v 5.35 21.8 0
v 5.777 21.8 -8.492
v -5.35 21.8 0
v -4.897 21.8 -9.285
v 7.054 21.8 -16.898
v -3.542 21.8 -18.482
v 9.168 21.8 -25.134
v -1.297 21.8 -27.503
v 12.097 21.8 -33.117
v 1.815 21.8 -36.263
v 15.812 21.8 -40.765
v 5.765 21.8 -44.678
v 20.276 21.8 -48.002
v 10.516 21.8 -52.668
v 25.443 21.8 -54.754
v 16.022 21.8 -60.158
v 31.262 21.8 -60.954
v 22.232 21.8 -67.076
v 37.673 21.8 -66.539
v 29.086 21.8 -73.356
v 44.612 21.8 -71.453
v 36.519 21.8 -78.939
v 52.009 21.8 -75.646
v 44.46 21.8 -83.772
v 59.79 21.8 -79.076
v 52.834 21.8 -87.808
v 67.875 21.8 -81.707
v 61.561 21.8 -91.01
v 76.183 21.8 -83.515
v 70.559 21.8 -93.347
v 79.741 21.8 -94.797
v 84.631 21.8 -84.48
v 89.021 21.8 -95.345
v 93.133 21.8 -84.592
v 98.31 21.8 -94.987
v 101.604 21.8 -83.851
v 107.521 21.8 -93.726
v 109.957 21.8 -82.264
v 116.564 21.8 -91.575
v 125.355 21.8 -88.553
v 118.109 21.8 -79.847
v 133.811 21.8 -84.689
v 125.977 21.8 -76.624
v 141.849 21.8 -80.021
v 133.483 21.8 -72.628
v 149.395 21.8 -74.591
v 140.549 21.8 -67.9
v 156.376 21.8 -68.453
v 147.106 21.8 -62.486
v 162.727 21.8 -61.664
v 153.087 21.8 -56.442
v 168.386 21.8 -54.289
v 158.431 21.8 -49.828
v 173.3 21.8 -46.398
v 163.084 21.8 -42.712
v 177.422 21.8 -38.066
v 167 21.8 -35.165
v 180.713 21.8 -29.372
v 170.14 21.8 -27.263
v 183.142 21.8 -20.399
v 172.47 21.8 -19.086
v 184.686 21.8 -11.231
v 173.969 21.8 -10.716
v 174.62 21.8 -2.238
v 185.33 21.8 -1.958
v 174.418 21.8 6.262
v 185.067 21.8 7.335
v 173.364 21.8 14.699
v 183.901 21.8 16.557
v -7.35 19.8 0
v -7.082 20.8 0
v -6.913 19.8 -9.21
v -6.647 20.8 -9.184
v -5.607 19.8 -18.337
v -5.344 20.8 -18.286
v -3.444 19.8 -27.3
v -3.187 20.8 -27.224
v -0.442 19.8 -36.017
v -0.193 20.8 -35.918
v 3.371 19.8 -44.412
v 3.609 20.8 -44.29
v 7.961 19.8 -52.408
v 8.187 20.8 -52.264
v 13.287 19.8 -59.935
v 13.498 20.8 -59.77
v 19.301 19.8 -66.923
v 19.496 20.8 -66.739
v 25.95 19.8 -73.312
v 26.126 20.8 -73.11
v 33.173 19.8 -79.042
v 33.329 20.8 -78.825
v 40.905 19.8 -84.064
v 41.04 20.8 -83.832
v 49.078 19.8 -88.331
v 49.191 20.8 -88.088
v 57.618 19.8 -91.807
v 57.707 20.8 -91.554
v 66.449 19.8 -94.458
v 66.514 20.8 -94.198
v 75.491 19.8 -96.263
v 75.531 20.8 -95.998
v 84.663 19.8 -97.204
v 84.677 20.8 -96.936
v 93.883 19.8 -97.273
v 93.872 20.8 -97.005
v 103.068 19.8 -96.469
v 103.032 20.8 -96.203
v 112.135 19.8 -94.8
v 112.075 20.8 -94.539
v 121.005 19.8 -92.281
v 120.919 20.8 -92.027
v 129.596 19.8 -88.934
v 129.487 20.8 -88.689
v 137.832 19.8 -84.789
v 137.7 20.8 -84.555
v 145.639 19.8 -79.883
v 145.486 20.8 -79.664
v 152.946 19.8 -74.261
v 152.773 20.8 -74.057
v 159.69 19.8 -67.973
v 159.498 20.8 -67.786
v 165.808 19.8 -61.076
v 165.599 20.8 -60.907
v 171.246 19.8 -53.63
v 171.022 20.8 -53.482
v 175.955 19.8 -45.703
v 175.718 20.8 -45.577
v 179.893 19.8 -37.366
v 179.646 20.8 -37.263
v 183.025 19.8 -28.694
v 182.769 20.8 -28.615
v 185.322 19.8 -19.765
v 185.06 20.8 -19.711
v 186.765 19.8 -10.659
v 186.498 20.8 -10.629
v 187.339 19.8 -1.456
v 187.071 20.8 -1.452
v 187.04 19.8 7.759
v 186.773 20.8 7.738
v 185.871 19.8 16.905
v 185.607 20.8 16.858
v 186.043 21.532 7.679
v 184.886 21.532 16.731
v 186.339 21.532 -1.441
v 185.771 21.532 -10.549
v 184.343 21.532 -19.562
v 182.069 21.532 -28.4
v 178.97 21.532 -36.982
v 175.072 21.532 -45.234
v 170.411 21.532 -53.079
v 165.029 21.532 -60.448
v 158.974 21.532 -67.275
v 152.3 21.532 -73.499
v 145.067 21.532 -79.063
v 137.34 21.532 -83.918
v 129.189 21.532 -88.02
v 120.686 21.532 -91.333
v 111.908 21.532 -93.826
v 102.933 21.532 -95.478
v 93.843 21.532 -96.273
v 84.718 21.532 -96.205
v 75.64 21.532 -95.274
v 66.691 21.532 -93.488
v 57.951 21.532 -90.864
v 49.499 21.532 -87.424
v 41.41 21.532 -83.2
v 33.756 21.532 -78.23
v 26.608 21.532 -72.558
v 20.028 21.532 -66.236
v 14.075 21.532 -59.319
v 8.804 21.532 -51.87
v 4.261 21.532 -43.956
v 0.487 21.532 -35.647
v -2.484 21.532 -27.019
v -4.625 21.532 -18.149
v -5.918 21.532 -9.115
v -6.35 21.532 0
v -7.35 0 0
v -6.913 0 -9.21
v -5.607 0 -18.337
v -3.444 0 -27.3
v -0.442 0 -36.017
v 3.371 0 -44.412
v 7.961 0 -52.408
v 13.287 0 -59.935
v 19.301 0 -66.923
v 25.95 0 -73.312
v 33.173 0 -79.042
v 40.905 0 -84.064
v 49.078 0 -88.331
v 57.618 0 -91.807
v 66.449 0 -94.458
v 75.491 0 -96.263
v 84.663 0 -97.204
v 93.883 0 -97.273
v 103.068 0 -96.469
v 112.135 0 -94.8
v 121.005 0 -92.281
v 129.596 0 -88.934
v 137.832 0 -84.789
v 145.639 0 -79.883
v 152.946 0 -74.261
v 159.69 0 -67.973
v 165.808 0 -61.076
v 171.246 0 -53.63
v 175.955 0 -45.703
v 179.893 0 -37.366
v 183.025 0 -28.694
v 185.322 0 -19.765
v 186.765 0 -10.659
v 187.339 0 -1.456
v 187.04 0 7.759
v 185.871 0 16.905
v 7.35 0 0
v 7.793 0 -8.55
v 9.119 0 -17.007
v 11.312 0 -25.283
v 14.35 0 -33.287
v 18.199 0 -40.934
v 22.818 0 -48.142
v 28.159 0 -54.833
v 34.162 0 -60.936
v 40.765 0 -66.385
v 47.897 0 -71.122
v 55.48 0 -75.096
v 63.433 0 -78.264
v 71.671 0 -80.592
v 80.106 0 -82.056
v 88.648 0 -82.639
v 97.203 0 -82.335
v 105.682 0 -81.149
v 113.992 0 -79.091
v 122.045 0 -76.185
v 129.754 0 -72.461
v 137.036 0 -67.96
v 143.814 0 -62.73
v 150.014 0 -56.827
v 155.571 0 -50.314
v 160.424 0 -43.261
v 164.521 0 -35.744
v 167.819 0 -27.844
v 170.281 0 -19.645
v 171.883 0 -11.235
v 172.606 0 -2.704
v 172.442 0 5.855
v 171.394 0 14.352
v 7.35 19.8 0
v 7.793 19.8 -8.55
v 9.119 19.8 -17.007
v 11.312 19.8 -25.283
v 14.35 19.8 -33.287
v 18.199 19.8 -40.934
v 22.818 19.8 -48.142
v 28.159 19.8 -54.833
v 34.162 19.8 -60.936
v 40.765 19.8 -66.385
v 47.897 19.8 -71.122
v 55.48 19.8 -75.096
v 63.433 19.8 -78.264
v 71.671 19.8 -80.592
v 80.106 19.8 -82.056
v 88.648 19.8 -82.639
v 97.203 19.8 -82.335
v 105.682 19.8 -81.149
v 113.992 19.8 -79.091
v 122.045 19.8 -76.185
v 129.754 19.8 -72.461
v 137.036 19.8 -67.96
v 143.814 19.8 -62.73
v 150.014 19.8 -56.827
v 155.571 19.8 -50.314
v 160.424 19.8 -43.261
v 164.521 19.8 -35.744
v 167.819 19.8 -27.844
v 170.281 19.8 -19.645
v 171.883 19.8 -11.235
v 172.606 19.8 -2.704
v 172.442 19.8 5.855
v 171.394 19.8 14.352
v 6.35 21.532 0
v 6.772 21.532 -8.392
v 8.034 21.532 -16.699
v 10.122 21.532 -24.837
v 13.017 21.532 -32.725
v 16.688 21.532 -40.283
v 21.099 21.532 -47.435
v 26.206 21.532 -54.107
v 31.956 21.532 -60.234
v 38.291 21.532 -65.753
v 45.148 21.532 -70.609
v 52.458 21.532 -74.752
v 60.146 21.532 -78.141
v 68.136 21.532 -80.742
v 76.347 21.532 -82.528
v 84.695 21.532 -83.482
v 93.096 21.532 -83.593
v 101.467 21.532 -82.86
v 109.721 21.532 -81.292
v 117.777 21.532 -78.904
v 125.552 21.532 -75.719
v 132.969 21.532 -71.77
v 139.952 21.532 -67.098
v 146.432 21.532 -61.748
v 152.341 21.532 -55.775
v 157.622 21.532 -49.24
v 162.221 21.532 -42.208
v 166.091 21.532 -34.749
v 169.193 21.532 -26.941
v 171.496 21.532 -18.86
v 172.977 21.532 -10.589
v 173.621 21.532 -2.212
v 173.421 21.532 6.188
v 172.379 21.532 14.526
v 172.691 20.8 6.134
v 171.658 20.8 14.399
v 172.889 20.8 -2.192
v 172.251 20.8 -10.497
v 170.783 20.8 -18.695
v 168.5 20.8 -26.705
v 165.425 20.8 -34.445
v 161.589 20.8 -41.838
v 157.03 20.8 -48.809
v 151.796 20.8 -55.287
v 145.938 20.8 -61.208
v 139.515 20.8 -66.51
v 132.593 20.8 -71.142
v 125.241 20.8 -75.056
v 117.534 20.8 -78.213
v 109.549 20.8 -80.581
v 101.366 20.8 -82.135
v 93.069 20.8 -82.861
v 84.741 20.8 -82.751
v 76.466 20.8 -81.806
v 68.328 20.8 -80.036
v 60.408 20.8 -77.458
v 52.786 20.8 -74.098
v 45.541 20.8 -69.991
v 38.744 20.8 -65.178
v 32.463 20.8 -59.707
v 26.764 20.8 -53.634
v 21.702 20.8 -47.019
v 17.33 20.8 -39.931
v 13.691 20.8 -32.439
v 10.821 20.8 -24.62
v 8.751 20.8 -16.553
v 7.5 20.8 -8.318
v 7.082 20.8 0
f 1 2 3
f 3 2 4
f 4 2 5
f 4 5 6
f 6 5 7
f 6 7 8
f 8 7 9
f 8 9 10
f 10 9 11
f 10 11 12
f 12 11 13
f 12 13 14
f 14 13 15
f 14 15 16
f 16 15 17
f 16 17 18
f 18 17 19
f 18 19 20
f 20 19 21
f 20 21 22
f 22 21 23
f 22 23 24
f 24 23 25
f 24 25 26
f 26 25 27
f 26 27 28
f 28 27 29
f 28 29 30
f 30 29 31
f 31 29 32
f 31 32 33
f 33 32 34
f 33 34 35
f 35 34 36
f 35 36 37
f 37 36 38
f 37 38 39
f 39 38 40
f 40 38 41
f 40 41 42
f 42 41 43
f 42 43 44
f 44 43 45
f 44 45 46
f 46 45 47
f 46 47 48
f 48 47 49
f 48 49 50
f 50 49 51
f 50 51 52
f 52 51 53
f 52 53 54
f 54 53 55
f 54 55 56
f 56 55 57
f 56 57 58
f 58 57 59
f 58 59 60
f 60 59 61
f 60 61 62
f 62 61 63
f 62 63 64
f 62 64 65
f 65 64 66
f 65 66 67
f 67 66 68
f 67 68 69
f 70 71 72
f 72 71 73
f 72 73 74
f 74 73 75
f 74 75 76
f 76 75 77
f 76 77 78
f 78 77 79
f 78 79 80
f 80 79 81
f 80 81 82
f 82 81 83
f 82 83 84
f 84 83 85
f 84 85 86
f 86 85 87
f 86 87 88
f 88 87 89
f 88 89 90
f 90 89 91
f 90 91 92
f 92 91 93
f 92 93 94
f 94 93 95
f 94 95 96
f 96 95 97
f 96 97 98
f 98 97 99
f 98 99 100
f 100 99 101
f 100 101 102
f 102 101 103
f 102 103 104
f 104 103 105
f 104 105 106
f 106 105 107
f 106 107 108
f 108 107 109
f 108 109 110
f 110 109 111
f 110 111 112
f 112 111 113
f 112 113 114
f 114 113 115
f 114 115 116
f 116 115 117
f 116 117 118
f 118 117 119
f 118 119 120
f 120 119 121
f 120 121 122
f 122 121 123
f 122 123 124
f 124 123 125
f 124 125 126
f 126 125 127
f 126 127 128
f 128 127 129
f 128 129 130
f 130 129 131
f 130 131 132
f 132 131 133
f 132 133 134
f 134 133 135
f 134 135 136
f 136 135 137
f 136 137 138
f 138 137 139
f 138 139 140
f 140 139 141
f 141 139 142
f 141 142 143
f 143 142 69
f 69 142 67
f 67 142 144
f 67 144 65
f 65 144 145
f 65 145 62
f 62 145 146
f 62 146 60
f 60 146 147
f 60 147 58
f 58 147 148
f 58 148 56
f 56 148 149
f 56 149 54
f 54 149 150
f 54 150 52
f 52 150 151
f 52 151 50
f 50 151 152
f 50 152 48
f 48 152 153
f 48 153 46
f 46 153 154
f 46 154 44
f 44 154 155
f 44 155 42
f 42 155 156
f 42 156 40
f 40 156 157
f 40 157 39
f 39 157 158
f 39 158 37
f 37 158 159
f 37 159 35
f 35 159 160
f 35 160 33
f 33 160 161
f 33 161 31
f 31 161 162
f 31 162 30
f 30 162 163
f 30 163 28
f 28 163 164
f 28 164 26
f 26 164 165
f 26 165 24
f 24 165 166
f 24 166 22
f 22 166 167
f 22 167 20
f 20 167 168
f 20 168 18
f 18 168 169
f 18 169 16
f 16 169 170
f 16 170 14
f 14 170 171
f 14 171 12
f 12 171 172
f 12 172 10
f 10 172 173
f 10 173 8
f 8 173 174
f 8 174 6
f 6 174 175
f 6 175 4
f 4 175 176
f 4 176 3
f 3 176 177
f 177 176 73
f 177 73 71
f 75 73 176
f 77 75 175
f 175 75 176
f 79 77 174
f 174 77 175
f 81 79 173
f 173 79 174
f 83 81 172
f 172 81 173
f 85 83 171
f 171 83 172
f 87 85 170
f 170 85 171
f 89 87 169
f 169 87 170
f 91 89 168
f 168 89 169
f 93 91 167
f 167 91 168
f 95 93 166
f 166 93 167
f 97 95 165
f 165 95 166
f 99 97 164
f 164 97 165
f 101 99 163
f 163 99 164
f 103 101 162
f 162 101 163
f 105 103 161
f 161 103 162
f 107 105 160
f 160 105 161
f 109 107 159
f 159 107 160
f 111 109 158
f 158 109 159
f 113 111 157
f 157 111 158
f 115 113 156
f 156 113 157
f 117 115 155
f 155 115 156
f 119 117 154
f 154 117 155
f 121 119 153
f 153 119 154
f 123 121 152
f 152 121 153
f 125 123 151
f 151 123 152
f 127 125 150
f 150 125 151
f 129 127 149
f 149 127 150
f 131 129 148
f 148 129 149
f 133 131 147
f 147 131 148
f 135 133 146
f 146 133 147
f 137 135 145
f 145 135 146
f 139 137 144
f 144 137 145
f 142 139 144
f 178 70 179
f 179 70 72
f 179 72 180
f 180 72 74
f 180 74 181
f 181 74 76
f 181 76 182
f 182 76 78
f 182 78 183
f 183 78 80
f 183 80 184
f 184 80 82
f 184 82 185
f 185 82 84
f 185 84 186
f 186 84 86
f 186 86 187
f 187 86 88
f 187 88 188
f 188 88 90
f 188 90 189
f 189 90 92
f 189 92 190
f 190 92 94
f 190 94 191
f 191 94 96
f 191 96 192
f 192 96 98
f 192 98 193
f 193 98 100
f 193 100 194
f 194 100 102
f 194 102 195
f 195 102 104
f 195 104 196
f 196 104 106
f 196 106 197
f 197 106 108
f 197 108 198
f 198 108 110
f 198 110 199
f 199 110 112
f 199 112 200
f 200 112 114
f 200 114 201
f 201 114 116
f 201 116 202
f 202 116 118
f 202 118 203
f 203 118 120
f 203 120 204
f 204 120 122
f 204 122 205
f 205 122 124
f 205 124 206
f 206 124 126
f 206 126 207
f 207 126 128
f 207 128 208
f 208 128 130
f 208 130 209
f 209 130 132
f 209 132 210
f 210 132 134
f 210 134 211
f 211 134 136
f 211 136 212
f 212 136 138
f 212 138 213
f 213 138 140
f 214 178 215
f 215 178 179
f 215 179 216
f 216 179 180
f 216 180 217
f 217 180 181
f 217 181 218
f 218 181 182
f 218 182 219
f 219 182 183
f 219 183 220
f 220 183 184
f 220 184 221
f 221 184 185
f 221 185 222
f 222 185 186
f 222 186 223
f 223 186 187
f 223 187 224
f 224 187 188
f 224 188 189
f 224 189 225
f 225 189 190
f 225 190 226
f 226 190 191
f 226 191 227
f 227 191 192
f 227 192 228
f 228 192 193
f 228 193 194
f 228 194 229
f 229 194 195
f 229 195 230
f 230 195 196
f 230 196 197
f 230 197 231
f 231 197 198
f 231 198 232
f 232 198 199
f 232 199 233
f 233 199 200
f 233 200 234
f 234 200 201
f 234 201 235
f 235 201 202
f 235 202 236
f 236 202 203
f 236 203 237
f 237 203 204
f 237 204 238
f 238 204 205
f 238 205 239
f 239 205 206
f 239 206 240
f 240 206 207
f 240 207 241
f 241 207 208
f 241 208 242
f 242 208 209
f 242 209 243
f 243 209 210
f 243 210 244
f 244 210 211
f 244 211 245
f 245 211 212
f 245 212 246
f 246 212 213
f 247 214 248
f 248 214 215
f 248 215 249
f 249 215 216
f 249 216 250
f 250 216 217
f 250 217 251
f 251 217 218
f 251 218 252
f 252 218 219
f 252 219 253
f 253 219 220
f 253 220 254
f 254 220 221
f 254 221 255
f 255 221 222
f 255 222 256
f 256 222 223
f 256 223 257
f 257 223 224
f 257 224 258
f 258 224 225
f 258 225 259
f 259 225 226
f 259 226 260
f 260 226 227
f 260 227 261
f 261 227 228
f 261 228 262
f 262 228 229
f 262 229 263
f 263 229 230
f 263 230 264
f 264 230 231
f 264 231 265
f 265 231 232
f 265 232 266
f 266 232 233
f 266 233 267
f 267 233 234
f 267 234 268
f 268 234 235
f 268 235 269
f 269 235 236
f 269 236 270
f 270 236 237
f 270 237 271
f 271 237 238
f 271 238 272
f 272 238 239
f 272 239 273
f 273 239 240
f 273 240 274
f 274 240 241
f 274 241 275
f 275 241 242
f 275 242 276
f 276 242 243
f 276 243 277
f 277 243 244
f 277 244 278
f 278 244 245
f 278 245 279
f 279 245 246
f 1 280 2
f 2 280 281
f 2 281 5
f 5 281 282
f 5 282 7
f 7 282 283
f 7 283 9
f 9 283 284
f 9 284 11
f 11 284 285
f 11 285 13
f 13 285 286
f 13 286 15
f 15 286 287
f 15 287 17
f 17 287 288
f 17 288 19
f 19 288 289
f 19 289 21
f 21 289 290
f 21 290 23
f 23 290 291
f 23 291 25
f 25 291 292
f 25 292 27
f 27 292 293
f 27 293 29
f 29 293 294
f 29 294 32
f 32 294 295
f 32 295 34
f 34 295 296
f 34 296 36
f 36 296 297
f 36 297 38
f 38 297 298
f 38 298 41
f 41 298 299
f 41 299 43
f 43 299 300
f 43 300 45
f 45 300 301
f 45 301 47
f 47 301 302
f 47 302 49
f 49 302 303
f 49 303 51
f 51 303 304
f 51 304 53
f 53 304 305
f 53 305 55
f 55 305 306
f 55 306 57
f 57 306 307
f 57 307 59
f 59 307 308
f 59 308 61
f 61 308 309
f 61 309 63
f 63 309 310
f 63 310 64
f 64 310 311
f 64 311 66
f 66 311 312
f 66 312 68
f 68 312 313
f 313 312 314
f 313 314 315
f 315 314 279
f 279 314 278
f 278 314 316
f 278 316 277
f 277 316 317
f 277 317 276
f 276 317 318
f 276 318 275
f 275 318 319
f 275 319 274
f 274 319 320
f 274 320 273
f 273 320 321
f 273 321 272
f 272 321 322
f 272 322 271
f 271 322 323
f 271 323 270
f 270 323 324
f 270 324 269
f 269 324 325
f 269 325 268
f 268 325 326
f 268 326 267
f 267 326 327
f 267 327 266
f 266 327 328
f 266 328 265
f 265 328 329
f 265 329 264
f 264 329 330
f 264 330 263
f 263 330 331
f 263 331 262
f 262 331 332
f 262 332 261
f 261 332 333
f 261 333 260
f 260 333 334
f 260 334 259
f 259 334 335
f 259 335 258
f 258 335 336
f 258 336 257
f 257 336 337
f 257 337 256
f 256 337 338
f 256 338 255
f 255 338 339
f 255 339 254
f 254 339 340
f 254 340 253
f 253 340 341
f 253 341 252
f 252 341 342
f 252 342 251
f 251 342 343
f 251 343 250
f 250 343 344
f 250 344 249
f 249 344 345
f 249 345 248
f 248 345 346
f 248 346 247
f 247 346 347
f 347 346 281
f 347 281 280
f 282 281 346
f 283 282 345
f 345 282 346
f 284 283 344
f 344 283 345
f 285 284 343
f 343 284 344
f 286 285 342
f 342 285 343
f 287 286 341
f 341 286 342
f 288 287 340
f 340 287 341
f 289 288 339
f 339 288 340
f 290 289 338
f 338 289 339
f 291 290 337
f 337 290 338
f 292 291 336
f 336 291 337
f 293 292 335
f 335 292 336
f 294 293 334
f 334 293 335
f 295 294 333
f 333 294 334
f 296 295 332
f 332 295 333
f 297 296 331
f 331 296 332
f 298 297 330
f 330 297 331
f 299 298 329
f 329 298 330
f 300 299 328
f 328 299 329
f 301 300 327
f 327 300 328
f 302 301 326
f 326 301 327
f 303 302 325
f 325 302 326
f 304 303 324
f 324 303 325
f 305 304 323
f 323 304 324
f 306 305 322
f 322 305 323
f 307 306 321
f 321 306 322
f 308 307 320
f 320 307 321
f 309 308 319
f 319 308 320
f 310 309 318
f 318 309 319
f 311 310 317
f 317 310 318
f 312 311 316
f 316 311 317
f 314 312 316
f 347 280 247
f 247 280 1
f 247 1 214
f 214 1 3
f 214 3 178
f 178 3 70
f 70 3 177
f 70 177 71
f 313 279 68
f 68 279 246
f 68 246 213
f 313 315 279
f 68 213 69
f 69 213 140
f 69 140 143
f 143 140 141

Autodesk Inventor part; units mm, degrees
ref_plane "YZ Plane" through (0, 0, 0) normal (1, 0, 0) x (0, 1, 0)
ref_plane "XZ Plane" through (0, 0, 0) normal (0, 1, 0) x (-1, 0, 0)
ref_plane "XY Plane" through (0, 0, 0) normal (0, 0, 1) x (1, 0, 0)
sketch "Sketch1" plane through (0, 0, 0) normal (0, 0, 1) x (1, 0, 0)
  line L0 (7.35, 0) -> (7.35, 19.8)
  line L1 (7.35, 0) -> (27.15, 0) construction
  line L2 (5.35, 21.8) -> (-5.35, 21.8)
  line L3 (-7.35, 19.8) -> (-7.35, 0)
  line L4 (-7.35, 0) -> (7.35, 0)
  arc A0 (-5.35, 21.8) -> (-7.35, 19.8) centre (-5.35, 19.8) ccw
  arc A1 (7.35, 19.8) -> (5.35, 21.8) centre (5.35, 19.8) ccw
  line L5 (90, 15.1029) -> (90, 0) construction
  point P0 (0, 0)
  point P1 (7.35, 21.8)
  point P2 (-7.35, 21.8)
  point P3 (0, 0)
  dimension "d0" = 21.8
  dimension "d1" = 90
  dimension "d2" = 7.35
  dimension "d3" = 14.7
  dimension "d4" = 2
  dimension "d5" = 90
  dimension "d7" = 0
revolve "Revolution1" add sketch "Sketch1" angle 190 about axis through (90, 15.1029, 0) along (0, -1, 0)
equation "\"d2\" = 0.5 * d3"
properties part number "InertiaKitInner"
